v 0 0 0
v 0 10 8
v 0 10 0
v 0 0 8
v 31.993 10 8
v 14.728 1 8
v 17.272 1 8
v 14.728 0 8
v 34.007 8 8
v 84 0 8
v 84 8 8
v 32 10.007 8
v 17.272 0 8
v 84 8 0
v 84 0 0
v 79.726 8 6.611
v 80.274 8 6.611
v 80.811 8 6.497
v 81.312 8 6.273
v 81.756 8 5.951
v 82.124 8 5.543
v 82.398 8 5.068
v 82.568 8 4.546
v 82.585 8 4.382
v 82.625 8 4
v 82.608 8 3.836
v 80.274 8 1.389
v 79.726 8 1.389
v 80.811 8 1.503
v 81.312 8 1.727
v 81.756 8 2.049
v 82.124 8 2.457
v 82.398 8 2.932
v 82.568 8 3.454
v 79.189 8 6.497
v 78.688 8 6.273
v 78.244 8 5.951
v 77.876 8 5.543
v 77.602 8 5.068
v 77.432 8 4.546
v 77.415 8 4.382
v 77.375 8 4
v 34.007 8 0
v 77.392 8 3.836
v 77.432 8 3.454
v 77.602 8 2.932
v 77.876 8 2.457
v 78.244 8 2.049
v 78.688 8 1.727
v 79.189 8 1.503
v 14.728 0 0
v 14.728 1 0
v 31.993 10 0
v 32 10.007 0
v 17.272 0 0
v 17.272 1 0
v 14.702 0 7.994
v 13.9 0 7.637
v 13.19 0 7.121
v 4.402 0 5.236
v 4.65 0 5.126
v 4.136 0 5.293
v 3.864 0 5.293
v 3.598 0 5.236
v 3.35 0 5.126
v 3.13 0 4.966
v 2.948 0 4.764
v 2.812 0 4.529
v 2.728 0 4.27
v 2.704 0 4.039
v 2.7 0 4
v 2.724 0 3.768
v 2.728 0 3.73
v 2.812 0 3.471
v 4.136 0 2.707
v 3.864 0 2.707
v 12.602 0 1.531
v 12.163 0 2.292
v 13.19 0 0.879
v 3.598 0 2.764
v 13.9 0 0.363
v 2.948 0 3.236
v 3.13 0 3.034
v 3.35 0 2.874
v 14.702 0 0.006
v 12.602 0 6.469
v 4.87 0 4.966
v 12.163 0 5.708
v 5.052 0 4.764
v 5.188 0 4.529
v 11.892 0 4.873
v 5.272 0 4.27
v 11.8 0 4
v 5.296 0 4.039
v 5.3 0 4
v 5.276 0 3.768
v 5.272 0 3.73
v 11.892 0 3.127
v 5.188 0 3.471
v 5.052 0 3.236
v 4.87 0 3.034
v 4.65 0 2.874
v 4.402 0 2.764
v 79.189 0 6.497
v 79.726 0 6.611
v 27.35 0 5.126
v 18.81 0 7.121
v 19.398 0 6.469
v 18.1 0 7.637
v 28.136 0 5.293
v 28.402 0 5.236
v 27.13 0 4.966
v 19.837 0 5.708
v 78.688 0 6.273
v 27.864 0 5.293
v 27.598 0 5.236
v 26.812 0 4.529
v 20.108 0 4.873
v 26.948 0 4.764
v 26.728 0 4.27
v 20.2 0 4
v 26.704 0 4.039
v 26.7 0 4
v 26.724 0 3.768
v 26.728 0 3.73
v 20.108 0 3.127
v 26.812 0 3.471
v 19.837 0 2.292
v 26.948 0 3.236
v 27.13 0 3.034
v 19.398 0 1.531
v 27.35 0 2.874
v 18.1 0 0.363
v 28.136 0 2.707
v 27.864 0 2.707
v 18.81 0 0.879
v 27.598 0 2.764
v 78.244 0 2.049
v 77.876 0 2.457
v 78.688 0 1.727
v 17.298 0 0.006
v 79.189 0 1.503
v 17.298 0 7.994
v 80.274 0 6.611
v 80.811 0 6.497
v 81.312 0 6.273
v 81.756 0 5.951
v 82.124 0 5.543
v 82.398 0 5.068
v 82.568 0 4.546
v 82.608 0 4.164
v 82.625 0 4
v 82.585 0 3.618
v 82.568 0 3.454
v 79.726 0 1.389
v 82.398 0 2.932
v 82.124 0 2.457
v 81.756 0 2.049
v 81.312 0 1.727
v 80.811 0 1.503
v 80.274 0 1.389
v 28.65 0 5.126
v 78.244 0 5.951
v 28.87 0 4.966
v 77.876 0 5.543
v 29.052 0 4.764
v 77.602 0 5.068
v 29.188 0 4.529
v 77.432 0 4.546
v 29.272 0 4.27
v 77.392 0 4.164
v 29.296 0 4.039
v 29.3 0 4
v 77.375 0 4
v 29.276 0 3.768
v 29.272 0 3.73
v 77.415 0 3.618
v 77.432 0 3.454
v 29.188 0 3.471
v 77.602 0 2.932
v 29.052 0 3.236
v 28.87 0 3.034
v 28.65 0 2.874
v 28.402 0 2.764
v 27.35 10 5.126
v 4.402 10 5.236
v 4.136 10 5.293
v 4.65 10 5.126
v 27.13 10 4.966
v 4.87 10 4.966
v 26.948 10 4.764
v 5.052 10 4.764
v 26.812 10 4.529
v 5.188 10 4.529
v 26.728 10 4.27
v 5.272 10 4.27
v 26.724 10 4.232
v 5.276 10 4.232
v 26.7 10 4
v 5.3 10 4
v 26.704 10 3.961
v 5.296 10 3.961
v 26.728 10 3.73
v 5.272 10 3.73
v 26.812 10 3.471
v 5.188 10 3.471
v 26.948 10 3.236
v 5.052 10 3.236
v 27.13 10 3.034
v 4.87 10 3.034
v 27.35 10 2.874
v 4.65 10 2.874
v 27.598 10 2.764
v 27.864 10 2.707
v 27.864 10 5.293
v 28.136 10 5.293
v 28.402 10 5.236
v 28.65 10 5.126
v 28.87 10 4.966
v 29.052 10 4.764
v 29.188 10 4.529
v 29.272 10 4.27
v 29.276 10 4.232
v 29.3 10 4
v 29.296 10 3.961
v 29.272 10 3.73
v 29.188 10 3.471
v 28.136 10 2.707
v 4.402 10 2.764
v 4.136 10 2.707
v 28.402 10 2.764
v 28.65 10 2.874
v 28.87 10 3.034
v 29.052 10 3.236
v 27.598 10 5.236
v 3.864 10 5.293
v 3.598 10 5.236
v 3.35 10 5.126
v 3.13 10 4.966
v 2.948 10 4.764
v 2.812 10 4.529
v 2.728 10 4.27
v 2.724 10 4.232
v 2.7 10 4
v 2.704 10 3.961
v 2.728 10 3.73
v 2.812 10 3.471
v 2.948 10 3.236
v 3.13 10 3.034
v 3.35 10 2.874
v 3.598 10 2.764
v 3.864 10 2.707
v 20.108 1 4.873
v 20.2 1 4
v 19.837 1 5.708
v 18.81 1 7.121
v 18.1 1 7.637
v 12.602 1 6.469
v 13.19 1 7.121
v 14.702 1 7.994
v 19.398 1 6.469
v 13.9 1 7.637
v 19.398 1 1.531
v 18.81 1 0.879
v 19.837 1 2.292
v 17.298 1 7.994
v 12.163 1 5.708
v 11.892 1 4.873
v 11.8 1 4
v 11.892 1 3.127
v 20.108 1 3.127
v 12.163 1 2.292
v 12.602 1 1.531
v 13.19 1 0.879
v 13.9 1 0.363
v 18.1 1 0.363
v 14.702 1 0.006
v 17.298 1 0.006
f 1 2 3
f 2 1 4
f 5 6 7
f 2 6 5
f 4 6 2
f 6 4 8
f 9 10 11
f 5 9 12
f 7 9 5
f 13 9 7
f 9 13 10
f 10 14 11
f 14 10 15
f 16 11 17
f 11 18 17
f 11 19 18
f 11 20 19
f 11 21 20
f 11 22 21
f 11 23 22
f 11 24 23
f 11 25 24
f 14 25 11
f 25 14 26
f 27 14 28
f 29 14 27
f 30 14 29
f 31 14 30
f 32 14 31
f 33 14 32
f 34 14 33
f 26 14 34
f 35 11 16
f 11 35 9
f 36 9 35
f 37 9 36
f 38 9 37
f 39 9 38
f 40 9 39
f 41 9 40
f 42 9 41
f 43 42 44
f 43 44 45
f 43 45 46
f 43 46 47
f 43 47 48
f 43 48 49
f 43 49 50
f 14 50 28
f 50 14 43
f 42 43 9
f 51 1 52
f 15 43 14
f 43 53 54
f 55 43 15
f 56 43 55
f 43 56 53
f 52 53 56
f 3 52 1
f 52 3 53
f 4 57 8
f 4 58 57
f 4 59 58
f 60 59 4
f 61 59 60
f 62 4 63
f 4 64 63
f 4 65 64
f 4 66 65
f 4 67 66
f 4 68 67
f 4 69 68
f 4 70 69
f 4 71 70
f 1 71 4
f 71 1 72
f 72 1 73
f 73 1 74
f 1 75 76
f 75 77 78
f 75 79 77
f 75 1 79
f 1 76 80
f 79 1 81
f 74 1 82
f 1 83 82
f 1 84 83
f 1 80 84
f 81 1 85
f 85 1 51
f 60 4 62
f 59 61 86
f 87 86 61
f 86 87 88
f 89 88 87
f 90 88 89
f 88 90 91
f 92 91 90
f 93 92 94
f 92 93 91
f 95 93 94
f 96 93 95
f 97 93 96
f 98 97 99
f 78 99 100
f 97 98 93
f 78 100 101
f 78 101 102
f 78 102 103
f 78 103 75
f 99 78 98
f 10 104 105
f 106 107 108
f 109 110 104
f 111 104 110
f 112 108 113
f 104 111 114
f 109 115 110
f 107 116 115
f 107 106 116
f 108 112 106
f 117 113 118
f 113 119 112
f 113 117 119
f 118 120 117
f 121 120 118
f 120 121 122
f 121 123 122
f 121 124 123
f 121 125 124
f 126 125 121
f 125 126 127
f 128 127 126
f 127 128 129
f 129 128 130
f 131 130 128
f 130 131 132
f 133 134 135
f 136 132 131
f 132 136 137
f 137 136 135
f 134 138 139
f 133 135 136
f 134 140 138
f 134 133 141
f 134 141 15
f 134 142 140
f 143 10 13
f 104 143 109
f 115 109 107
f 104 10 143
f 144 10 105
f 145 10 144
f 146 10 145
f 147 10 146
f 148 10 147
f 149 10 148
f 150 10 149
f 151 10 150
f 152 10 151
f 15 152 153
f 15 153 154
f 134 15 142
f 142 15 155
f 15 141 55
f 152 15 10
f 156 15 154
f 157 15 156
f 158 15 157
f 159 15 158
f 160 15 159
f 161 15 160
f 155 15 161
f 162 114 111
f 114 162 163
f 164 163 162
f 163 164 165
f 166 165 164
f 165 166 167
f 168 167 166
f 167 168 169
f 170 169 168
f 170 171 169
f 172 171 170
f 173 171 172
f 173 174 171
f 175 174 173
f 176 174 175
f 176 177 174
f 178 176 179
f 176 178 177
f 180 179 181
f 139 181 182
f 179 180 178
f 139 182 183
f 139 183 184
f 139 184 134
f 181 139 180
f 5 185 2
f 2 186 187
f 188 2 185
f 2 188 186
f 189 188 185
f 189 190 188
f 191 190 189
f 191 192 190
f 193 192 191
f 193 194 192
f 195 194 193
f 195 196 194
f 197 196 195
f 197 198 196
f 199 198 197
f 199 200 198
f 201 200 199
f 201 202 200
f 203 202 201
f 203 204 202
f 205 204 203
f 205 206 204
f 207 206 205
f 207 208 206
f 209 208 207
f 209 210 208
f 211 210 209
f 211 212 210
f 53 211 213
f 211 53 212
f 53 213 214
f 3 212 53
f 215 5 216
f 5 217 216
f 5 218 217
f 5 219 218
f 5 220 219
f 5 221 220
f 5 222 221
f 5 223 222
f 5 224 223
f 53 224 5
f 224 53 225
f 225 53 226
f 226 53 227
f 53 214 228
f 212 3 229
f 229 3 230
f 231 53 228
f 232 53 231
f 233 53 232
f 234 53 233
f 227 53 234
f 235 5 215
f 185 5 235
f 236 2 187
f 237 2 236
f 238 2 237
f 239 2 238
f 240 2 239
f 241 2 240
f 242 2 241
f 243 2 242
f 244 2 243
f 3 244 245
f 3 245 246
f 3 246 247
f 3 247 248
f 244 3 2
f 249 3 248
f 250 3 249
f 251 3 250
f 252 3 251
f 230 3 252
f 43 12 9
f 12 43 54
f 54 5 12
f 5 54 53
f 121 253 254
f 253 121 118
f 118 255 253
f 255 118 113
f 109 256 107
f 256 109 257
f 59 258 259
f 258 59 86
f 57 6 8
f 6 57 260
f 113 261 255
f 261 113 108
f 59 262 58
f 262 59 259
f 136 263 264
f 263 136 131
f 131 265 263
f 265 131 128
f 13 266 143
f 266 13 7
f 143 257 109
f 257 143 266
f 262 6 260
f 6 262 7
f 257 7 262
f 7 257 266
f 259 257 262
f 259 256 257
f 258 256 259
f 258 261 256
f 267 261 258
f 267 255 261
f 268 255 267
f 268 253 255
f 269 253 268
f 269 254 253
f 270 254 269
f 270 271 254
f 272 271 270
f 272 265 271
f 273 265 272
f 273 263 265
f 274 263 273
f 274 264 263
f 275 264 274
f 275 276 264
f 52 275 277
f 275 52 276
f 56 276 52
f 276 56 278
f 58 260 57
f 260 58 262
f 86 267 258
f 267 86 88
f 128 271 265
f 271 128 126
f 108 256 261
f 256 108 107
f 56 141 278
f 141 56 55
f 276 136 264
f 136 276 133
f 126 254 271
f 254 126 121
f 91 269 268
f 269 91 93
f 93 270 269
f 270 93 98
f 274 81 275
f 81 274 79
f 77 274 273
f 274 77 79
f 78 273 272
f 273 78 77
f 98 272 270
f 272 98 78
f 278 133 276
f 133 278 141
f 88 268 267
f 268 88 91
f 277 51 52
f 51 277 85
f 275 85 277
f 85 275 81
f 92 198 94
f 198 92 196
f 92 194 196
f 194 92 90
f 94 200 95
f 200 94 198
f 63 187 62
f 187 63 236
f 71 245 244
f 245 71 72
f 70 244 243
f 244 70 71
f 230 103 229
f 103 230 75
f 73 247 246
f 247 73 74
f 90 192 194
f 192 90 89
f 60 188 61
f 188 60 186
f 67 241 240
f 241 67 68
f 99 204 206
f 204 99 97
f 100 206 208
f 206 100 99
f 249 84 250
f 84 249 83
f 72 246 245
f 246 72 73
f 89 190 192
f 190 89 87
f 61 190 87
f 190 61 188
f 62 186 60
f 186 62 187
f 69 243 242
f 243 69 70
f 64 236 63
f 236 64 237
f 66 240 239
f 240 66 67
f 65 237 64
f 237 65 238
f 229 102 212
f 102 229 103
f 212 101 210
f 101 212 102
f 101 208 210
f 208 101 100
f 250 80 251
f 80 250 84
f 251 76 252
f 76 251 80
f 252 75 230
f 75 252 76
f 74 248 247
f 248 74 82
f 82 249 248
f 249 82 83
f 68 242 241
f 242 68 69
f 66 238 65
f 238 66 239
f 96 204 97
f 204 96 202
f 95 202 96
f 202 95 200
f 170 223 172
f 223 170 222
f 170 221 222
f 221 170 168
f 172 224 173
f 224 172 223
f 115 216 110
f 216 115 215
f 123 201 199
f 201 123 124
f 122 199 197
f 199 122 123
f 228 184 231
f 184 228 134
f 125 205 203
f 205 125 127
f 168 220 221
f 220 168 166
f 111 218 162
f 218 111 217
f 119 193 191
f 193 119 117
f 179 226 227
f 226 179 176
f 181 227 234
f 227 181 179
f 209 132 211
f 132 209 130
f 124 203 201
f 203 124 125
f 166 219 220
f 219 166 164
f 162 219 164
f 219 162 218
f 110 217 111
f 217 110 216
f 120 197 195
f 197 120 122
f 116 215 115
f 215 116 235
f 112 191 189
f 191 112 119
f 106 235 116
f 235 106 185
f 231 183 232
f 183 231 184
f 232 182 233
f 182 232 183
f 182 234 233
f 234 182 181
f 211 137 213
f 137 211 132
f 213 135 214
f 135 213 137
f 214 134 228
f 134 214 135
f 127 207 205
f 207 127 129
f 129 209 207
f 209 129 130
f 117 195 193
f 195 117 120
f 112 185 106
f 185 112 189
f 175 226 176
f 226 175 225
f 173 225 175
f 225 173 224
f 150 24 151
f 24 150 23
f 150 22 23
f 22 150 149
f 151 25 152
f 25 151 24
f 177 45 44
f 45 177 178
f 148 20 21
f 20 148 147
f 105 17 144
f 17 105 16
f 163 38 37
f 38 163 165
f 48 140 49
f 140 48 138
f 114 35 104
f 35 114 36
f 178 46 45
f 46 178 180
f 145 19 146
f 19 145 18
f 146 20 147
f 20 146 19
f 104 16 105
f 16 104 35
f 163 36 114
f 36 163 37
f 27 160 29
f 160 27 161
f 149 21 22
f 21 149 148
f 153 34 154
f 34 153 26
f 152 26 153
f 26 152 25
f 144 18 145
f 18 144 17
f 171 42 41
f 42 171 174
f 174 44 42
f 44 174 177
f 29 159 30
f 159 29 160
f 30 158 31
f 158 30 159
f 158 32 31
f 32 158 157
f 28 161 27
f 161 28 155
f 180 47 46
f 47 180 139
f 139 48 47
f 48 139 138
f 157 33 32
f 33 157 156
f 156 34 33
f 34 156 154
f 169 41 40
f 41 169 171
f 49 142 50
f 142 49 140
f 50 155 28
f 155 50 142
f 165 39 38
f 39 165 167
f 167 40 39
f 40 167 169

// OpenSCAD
// Description: "Upper arm for Tapster 2 Plus"
// Project home: http://tapsterbot.com

// Slicer settings
// Infill density: 0.5
// Fill pattern: line
// Top/bottom fill pattern: rectilinear

beam_width     = 8;
hole_diameter  = 5.25;
hole_radius    = hole_diameter / 2;
beam_length = beam_width * 10.5;

difference() {
    // Draw the beam...
    union(){
        cube([beam_length,beam_width,beam_width]);

        translate([0,6,0])
        cube([32,4,8]);

        translate([32.0,4.35,0])
        rotate([0,0,45])
        cube([4,4,8]);

        //rotate(90)
        //translate([-8,-beam_length,0])
        //cube([24,8,8]);
    }

    // Servo mount - center
    rotate([90,0,0])
    translate([16,4,-1])
    cylinder(r=4.2, h=5, $fn=30);

    // Hole #1 for servo
    rotate([90,0,0])
    translate([4,beam_width/2,-12])
    cylinder(r=1.3, h=14, $fn=30);

    // Hole #2 for servo
    rotate([90,0,0])
    translate([28,beam_width/2,-12])
    cylinder(r=1.3, h=14, $fn=30);

    /*
    // Holes for magnets
    translate([beam_length-4,-4,-5])
    cylinder(r=hole_radius, h=20, $fn=30);

    // Holes for magnets
    translate([beam_length-4,12,-5])
    cylinder(r=hole_radius, h=20, $fn=30);
    */

    rotate([90,0,0])
    translate([beam_length-4,4,-14])
    cylinder(r=hole_radius, h=20, $fn=30);

}
